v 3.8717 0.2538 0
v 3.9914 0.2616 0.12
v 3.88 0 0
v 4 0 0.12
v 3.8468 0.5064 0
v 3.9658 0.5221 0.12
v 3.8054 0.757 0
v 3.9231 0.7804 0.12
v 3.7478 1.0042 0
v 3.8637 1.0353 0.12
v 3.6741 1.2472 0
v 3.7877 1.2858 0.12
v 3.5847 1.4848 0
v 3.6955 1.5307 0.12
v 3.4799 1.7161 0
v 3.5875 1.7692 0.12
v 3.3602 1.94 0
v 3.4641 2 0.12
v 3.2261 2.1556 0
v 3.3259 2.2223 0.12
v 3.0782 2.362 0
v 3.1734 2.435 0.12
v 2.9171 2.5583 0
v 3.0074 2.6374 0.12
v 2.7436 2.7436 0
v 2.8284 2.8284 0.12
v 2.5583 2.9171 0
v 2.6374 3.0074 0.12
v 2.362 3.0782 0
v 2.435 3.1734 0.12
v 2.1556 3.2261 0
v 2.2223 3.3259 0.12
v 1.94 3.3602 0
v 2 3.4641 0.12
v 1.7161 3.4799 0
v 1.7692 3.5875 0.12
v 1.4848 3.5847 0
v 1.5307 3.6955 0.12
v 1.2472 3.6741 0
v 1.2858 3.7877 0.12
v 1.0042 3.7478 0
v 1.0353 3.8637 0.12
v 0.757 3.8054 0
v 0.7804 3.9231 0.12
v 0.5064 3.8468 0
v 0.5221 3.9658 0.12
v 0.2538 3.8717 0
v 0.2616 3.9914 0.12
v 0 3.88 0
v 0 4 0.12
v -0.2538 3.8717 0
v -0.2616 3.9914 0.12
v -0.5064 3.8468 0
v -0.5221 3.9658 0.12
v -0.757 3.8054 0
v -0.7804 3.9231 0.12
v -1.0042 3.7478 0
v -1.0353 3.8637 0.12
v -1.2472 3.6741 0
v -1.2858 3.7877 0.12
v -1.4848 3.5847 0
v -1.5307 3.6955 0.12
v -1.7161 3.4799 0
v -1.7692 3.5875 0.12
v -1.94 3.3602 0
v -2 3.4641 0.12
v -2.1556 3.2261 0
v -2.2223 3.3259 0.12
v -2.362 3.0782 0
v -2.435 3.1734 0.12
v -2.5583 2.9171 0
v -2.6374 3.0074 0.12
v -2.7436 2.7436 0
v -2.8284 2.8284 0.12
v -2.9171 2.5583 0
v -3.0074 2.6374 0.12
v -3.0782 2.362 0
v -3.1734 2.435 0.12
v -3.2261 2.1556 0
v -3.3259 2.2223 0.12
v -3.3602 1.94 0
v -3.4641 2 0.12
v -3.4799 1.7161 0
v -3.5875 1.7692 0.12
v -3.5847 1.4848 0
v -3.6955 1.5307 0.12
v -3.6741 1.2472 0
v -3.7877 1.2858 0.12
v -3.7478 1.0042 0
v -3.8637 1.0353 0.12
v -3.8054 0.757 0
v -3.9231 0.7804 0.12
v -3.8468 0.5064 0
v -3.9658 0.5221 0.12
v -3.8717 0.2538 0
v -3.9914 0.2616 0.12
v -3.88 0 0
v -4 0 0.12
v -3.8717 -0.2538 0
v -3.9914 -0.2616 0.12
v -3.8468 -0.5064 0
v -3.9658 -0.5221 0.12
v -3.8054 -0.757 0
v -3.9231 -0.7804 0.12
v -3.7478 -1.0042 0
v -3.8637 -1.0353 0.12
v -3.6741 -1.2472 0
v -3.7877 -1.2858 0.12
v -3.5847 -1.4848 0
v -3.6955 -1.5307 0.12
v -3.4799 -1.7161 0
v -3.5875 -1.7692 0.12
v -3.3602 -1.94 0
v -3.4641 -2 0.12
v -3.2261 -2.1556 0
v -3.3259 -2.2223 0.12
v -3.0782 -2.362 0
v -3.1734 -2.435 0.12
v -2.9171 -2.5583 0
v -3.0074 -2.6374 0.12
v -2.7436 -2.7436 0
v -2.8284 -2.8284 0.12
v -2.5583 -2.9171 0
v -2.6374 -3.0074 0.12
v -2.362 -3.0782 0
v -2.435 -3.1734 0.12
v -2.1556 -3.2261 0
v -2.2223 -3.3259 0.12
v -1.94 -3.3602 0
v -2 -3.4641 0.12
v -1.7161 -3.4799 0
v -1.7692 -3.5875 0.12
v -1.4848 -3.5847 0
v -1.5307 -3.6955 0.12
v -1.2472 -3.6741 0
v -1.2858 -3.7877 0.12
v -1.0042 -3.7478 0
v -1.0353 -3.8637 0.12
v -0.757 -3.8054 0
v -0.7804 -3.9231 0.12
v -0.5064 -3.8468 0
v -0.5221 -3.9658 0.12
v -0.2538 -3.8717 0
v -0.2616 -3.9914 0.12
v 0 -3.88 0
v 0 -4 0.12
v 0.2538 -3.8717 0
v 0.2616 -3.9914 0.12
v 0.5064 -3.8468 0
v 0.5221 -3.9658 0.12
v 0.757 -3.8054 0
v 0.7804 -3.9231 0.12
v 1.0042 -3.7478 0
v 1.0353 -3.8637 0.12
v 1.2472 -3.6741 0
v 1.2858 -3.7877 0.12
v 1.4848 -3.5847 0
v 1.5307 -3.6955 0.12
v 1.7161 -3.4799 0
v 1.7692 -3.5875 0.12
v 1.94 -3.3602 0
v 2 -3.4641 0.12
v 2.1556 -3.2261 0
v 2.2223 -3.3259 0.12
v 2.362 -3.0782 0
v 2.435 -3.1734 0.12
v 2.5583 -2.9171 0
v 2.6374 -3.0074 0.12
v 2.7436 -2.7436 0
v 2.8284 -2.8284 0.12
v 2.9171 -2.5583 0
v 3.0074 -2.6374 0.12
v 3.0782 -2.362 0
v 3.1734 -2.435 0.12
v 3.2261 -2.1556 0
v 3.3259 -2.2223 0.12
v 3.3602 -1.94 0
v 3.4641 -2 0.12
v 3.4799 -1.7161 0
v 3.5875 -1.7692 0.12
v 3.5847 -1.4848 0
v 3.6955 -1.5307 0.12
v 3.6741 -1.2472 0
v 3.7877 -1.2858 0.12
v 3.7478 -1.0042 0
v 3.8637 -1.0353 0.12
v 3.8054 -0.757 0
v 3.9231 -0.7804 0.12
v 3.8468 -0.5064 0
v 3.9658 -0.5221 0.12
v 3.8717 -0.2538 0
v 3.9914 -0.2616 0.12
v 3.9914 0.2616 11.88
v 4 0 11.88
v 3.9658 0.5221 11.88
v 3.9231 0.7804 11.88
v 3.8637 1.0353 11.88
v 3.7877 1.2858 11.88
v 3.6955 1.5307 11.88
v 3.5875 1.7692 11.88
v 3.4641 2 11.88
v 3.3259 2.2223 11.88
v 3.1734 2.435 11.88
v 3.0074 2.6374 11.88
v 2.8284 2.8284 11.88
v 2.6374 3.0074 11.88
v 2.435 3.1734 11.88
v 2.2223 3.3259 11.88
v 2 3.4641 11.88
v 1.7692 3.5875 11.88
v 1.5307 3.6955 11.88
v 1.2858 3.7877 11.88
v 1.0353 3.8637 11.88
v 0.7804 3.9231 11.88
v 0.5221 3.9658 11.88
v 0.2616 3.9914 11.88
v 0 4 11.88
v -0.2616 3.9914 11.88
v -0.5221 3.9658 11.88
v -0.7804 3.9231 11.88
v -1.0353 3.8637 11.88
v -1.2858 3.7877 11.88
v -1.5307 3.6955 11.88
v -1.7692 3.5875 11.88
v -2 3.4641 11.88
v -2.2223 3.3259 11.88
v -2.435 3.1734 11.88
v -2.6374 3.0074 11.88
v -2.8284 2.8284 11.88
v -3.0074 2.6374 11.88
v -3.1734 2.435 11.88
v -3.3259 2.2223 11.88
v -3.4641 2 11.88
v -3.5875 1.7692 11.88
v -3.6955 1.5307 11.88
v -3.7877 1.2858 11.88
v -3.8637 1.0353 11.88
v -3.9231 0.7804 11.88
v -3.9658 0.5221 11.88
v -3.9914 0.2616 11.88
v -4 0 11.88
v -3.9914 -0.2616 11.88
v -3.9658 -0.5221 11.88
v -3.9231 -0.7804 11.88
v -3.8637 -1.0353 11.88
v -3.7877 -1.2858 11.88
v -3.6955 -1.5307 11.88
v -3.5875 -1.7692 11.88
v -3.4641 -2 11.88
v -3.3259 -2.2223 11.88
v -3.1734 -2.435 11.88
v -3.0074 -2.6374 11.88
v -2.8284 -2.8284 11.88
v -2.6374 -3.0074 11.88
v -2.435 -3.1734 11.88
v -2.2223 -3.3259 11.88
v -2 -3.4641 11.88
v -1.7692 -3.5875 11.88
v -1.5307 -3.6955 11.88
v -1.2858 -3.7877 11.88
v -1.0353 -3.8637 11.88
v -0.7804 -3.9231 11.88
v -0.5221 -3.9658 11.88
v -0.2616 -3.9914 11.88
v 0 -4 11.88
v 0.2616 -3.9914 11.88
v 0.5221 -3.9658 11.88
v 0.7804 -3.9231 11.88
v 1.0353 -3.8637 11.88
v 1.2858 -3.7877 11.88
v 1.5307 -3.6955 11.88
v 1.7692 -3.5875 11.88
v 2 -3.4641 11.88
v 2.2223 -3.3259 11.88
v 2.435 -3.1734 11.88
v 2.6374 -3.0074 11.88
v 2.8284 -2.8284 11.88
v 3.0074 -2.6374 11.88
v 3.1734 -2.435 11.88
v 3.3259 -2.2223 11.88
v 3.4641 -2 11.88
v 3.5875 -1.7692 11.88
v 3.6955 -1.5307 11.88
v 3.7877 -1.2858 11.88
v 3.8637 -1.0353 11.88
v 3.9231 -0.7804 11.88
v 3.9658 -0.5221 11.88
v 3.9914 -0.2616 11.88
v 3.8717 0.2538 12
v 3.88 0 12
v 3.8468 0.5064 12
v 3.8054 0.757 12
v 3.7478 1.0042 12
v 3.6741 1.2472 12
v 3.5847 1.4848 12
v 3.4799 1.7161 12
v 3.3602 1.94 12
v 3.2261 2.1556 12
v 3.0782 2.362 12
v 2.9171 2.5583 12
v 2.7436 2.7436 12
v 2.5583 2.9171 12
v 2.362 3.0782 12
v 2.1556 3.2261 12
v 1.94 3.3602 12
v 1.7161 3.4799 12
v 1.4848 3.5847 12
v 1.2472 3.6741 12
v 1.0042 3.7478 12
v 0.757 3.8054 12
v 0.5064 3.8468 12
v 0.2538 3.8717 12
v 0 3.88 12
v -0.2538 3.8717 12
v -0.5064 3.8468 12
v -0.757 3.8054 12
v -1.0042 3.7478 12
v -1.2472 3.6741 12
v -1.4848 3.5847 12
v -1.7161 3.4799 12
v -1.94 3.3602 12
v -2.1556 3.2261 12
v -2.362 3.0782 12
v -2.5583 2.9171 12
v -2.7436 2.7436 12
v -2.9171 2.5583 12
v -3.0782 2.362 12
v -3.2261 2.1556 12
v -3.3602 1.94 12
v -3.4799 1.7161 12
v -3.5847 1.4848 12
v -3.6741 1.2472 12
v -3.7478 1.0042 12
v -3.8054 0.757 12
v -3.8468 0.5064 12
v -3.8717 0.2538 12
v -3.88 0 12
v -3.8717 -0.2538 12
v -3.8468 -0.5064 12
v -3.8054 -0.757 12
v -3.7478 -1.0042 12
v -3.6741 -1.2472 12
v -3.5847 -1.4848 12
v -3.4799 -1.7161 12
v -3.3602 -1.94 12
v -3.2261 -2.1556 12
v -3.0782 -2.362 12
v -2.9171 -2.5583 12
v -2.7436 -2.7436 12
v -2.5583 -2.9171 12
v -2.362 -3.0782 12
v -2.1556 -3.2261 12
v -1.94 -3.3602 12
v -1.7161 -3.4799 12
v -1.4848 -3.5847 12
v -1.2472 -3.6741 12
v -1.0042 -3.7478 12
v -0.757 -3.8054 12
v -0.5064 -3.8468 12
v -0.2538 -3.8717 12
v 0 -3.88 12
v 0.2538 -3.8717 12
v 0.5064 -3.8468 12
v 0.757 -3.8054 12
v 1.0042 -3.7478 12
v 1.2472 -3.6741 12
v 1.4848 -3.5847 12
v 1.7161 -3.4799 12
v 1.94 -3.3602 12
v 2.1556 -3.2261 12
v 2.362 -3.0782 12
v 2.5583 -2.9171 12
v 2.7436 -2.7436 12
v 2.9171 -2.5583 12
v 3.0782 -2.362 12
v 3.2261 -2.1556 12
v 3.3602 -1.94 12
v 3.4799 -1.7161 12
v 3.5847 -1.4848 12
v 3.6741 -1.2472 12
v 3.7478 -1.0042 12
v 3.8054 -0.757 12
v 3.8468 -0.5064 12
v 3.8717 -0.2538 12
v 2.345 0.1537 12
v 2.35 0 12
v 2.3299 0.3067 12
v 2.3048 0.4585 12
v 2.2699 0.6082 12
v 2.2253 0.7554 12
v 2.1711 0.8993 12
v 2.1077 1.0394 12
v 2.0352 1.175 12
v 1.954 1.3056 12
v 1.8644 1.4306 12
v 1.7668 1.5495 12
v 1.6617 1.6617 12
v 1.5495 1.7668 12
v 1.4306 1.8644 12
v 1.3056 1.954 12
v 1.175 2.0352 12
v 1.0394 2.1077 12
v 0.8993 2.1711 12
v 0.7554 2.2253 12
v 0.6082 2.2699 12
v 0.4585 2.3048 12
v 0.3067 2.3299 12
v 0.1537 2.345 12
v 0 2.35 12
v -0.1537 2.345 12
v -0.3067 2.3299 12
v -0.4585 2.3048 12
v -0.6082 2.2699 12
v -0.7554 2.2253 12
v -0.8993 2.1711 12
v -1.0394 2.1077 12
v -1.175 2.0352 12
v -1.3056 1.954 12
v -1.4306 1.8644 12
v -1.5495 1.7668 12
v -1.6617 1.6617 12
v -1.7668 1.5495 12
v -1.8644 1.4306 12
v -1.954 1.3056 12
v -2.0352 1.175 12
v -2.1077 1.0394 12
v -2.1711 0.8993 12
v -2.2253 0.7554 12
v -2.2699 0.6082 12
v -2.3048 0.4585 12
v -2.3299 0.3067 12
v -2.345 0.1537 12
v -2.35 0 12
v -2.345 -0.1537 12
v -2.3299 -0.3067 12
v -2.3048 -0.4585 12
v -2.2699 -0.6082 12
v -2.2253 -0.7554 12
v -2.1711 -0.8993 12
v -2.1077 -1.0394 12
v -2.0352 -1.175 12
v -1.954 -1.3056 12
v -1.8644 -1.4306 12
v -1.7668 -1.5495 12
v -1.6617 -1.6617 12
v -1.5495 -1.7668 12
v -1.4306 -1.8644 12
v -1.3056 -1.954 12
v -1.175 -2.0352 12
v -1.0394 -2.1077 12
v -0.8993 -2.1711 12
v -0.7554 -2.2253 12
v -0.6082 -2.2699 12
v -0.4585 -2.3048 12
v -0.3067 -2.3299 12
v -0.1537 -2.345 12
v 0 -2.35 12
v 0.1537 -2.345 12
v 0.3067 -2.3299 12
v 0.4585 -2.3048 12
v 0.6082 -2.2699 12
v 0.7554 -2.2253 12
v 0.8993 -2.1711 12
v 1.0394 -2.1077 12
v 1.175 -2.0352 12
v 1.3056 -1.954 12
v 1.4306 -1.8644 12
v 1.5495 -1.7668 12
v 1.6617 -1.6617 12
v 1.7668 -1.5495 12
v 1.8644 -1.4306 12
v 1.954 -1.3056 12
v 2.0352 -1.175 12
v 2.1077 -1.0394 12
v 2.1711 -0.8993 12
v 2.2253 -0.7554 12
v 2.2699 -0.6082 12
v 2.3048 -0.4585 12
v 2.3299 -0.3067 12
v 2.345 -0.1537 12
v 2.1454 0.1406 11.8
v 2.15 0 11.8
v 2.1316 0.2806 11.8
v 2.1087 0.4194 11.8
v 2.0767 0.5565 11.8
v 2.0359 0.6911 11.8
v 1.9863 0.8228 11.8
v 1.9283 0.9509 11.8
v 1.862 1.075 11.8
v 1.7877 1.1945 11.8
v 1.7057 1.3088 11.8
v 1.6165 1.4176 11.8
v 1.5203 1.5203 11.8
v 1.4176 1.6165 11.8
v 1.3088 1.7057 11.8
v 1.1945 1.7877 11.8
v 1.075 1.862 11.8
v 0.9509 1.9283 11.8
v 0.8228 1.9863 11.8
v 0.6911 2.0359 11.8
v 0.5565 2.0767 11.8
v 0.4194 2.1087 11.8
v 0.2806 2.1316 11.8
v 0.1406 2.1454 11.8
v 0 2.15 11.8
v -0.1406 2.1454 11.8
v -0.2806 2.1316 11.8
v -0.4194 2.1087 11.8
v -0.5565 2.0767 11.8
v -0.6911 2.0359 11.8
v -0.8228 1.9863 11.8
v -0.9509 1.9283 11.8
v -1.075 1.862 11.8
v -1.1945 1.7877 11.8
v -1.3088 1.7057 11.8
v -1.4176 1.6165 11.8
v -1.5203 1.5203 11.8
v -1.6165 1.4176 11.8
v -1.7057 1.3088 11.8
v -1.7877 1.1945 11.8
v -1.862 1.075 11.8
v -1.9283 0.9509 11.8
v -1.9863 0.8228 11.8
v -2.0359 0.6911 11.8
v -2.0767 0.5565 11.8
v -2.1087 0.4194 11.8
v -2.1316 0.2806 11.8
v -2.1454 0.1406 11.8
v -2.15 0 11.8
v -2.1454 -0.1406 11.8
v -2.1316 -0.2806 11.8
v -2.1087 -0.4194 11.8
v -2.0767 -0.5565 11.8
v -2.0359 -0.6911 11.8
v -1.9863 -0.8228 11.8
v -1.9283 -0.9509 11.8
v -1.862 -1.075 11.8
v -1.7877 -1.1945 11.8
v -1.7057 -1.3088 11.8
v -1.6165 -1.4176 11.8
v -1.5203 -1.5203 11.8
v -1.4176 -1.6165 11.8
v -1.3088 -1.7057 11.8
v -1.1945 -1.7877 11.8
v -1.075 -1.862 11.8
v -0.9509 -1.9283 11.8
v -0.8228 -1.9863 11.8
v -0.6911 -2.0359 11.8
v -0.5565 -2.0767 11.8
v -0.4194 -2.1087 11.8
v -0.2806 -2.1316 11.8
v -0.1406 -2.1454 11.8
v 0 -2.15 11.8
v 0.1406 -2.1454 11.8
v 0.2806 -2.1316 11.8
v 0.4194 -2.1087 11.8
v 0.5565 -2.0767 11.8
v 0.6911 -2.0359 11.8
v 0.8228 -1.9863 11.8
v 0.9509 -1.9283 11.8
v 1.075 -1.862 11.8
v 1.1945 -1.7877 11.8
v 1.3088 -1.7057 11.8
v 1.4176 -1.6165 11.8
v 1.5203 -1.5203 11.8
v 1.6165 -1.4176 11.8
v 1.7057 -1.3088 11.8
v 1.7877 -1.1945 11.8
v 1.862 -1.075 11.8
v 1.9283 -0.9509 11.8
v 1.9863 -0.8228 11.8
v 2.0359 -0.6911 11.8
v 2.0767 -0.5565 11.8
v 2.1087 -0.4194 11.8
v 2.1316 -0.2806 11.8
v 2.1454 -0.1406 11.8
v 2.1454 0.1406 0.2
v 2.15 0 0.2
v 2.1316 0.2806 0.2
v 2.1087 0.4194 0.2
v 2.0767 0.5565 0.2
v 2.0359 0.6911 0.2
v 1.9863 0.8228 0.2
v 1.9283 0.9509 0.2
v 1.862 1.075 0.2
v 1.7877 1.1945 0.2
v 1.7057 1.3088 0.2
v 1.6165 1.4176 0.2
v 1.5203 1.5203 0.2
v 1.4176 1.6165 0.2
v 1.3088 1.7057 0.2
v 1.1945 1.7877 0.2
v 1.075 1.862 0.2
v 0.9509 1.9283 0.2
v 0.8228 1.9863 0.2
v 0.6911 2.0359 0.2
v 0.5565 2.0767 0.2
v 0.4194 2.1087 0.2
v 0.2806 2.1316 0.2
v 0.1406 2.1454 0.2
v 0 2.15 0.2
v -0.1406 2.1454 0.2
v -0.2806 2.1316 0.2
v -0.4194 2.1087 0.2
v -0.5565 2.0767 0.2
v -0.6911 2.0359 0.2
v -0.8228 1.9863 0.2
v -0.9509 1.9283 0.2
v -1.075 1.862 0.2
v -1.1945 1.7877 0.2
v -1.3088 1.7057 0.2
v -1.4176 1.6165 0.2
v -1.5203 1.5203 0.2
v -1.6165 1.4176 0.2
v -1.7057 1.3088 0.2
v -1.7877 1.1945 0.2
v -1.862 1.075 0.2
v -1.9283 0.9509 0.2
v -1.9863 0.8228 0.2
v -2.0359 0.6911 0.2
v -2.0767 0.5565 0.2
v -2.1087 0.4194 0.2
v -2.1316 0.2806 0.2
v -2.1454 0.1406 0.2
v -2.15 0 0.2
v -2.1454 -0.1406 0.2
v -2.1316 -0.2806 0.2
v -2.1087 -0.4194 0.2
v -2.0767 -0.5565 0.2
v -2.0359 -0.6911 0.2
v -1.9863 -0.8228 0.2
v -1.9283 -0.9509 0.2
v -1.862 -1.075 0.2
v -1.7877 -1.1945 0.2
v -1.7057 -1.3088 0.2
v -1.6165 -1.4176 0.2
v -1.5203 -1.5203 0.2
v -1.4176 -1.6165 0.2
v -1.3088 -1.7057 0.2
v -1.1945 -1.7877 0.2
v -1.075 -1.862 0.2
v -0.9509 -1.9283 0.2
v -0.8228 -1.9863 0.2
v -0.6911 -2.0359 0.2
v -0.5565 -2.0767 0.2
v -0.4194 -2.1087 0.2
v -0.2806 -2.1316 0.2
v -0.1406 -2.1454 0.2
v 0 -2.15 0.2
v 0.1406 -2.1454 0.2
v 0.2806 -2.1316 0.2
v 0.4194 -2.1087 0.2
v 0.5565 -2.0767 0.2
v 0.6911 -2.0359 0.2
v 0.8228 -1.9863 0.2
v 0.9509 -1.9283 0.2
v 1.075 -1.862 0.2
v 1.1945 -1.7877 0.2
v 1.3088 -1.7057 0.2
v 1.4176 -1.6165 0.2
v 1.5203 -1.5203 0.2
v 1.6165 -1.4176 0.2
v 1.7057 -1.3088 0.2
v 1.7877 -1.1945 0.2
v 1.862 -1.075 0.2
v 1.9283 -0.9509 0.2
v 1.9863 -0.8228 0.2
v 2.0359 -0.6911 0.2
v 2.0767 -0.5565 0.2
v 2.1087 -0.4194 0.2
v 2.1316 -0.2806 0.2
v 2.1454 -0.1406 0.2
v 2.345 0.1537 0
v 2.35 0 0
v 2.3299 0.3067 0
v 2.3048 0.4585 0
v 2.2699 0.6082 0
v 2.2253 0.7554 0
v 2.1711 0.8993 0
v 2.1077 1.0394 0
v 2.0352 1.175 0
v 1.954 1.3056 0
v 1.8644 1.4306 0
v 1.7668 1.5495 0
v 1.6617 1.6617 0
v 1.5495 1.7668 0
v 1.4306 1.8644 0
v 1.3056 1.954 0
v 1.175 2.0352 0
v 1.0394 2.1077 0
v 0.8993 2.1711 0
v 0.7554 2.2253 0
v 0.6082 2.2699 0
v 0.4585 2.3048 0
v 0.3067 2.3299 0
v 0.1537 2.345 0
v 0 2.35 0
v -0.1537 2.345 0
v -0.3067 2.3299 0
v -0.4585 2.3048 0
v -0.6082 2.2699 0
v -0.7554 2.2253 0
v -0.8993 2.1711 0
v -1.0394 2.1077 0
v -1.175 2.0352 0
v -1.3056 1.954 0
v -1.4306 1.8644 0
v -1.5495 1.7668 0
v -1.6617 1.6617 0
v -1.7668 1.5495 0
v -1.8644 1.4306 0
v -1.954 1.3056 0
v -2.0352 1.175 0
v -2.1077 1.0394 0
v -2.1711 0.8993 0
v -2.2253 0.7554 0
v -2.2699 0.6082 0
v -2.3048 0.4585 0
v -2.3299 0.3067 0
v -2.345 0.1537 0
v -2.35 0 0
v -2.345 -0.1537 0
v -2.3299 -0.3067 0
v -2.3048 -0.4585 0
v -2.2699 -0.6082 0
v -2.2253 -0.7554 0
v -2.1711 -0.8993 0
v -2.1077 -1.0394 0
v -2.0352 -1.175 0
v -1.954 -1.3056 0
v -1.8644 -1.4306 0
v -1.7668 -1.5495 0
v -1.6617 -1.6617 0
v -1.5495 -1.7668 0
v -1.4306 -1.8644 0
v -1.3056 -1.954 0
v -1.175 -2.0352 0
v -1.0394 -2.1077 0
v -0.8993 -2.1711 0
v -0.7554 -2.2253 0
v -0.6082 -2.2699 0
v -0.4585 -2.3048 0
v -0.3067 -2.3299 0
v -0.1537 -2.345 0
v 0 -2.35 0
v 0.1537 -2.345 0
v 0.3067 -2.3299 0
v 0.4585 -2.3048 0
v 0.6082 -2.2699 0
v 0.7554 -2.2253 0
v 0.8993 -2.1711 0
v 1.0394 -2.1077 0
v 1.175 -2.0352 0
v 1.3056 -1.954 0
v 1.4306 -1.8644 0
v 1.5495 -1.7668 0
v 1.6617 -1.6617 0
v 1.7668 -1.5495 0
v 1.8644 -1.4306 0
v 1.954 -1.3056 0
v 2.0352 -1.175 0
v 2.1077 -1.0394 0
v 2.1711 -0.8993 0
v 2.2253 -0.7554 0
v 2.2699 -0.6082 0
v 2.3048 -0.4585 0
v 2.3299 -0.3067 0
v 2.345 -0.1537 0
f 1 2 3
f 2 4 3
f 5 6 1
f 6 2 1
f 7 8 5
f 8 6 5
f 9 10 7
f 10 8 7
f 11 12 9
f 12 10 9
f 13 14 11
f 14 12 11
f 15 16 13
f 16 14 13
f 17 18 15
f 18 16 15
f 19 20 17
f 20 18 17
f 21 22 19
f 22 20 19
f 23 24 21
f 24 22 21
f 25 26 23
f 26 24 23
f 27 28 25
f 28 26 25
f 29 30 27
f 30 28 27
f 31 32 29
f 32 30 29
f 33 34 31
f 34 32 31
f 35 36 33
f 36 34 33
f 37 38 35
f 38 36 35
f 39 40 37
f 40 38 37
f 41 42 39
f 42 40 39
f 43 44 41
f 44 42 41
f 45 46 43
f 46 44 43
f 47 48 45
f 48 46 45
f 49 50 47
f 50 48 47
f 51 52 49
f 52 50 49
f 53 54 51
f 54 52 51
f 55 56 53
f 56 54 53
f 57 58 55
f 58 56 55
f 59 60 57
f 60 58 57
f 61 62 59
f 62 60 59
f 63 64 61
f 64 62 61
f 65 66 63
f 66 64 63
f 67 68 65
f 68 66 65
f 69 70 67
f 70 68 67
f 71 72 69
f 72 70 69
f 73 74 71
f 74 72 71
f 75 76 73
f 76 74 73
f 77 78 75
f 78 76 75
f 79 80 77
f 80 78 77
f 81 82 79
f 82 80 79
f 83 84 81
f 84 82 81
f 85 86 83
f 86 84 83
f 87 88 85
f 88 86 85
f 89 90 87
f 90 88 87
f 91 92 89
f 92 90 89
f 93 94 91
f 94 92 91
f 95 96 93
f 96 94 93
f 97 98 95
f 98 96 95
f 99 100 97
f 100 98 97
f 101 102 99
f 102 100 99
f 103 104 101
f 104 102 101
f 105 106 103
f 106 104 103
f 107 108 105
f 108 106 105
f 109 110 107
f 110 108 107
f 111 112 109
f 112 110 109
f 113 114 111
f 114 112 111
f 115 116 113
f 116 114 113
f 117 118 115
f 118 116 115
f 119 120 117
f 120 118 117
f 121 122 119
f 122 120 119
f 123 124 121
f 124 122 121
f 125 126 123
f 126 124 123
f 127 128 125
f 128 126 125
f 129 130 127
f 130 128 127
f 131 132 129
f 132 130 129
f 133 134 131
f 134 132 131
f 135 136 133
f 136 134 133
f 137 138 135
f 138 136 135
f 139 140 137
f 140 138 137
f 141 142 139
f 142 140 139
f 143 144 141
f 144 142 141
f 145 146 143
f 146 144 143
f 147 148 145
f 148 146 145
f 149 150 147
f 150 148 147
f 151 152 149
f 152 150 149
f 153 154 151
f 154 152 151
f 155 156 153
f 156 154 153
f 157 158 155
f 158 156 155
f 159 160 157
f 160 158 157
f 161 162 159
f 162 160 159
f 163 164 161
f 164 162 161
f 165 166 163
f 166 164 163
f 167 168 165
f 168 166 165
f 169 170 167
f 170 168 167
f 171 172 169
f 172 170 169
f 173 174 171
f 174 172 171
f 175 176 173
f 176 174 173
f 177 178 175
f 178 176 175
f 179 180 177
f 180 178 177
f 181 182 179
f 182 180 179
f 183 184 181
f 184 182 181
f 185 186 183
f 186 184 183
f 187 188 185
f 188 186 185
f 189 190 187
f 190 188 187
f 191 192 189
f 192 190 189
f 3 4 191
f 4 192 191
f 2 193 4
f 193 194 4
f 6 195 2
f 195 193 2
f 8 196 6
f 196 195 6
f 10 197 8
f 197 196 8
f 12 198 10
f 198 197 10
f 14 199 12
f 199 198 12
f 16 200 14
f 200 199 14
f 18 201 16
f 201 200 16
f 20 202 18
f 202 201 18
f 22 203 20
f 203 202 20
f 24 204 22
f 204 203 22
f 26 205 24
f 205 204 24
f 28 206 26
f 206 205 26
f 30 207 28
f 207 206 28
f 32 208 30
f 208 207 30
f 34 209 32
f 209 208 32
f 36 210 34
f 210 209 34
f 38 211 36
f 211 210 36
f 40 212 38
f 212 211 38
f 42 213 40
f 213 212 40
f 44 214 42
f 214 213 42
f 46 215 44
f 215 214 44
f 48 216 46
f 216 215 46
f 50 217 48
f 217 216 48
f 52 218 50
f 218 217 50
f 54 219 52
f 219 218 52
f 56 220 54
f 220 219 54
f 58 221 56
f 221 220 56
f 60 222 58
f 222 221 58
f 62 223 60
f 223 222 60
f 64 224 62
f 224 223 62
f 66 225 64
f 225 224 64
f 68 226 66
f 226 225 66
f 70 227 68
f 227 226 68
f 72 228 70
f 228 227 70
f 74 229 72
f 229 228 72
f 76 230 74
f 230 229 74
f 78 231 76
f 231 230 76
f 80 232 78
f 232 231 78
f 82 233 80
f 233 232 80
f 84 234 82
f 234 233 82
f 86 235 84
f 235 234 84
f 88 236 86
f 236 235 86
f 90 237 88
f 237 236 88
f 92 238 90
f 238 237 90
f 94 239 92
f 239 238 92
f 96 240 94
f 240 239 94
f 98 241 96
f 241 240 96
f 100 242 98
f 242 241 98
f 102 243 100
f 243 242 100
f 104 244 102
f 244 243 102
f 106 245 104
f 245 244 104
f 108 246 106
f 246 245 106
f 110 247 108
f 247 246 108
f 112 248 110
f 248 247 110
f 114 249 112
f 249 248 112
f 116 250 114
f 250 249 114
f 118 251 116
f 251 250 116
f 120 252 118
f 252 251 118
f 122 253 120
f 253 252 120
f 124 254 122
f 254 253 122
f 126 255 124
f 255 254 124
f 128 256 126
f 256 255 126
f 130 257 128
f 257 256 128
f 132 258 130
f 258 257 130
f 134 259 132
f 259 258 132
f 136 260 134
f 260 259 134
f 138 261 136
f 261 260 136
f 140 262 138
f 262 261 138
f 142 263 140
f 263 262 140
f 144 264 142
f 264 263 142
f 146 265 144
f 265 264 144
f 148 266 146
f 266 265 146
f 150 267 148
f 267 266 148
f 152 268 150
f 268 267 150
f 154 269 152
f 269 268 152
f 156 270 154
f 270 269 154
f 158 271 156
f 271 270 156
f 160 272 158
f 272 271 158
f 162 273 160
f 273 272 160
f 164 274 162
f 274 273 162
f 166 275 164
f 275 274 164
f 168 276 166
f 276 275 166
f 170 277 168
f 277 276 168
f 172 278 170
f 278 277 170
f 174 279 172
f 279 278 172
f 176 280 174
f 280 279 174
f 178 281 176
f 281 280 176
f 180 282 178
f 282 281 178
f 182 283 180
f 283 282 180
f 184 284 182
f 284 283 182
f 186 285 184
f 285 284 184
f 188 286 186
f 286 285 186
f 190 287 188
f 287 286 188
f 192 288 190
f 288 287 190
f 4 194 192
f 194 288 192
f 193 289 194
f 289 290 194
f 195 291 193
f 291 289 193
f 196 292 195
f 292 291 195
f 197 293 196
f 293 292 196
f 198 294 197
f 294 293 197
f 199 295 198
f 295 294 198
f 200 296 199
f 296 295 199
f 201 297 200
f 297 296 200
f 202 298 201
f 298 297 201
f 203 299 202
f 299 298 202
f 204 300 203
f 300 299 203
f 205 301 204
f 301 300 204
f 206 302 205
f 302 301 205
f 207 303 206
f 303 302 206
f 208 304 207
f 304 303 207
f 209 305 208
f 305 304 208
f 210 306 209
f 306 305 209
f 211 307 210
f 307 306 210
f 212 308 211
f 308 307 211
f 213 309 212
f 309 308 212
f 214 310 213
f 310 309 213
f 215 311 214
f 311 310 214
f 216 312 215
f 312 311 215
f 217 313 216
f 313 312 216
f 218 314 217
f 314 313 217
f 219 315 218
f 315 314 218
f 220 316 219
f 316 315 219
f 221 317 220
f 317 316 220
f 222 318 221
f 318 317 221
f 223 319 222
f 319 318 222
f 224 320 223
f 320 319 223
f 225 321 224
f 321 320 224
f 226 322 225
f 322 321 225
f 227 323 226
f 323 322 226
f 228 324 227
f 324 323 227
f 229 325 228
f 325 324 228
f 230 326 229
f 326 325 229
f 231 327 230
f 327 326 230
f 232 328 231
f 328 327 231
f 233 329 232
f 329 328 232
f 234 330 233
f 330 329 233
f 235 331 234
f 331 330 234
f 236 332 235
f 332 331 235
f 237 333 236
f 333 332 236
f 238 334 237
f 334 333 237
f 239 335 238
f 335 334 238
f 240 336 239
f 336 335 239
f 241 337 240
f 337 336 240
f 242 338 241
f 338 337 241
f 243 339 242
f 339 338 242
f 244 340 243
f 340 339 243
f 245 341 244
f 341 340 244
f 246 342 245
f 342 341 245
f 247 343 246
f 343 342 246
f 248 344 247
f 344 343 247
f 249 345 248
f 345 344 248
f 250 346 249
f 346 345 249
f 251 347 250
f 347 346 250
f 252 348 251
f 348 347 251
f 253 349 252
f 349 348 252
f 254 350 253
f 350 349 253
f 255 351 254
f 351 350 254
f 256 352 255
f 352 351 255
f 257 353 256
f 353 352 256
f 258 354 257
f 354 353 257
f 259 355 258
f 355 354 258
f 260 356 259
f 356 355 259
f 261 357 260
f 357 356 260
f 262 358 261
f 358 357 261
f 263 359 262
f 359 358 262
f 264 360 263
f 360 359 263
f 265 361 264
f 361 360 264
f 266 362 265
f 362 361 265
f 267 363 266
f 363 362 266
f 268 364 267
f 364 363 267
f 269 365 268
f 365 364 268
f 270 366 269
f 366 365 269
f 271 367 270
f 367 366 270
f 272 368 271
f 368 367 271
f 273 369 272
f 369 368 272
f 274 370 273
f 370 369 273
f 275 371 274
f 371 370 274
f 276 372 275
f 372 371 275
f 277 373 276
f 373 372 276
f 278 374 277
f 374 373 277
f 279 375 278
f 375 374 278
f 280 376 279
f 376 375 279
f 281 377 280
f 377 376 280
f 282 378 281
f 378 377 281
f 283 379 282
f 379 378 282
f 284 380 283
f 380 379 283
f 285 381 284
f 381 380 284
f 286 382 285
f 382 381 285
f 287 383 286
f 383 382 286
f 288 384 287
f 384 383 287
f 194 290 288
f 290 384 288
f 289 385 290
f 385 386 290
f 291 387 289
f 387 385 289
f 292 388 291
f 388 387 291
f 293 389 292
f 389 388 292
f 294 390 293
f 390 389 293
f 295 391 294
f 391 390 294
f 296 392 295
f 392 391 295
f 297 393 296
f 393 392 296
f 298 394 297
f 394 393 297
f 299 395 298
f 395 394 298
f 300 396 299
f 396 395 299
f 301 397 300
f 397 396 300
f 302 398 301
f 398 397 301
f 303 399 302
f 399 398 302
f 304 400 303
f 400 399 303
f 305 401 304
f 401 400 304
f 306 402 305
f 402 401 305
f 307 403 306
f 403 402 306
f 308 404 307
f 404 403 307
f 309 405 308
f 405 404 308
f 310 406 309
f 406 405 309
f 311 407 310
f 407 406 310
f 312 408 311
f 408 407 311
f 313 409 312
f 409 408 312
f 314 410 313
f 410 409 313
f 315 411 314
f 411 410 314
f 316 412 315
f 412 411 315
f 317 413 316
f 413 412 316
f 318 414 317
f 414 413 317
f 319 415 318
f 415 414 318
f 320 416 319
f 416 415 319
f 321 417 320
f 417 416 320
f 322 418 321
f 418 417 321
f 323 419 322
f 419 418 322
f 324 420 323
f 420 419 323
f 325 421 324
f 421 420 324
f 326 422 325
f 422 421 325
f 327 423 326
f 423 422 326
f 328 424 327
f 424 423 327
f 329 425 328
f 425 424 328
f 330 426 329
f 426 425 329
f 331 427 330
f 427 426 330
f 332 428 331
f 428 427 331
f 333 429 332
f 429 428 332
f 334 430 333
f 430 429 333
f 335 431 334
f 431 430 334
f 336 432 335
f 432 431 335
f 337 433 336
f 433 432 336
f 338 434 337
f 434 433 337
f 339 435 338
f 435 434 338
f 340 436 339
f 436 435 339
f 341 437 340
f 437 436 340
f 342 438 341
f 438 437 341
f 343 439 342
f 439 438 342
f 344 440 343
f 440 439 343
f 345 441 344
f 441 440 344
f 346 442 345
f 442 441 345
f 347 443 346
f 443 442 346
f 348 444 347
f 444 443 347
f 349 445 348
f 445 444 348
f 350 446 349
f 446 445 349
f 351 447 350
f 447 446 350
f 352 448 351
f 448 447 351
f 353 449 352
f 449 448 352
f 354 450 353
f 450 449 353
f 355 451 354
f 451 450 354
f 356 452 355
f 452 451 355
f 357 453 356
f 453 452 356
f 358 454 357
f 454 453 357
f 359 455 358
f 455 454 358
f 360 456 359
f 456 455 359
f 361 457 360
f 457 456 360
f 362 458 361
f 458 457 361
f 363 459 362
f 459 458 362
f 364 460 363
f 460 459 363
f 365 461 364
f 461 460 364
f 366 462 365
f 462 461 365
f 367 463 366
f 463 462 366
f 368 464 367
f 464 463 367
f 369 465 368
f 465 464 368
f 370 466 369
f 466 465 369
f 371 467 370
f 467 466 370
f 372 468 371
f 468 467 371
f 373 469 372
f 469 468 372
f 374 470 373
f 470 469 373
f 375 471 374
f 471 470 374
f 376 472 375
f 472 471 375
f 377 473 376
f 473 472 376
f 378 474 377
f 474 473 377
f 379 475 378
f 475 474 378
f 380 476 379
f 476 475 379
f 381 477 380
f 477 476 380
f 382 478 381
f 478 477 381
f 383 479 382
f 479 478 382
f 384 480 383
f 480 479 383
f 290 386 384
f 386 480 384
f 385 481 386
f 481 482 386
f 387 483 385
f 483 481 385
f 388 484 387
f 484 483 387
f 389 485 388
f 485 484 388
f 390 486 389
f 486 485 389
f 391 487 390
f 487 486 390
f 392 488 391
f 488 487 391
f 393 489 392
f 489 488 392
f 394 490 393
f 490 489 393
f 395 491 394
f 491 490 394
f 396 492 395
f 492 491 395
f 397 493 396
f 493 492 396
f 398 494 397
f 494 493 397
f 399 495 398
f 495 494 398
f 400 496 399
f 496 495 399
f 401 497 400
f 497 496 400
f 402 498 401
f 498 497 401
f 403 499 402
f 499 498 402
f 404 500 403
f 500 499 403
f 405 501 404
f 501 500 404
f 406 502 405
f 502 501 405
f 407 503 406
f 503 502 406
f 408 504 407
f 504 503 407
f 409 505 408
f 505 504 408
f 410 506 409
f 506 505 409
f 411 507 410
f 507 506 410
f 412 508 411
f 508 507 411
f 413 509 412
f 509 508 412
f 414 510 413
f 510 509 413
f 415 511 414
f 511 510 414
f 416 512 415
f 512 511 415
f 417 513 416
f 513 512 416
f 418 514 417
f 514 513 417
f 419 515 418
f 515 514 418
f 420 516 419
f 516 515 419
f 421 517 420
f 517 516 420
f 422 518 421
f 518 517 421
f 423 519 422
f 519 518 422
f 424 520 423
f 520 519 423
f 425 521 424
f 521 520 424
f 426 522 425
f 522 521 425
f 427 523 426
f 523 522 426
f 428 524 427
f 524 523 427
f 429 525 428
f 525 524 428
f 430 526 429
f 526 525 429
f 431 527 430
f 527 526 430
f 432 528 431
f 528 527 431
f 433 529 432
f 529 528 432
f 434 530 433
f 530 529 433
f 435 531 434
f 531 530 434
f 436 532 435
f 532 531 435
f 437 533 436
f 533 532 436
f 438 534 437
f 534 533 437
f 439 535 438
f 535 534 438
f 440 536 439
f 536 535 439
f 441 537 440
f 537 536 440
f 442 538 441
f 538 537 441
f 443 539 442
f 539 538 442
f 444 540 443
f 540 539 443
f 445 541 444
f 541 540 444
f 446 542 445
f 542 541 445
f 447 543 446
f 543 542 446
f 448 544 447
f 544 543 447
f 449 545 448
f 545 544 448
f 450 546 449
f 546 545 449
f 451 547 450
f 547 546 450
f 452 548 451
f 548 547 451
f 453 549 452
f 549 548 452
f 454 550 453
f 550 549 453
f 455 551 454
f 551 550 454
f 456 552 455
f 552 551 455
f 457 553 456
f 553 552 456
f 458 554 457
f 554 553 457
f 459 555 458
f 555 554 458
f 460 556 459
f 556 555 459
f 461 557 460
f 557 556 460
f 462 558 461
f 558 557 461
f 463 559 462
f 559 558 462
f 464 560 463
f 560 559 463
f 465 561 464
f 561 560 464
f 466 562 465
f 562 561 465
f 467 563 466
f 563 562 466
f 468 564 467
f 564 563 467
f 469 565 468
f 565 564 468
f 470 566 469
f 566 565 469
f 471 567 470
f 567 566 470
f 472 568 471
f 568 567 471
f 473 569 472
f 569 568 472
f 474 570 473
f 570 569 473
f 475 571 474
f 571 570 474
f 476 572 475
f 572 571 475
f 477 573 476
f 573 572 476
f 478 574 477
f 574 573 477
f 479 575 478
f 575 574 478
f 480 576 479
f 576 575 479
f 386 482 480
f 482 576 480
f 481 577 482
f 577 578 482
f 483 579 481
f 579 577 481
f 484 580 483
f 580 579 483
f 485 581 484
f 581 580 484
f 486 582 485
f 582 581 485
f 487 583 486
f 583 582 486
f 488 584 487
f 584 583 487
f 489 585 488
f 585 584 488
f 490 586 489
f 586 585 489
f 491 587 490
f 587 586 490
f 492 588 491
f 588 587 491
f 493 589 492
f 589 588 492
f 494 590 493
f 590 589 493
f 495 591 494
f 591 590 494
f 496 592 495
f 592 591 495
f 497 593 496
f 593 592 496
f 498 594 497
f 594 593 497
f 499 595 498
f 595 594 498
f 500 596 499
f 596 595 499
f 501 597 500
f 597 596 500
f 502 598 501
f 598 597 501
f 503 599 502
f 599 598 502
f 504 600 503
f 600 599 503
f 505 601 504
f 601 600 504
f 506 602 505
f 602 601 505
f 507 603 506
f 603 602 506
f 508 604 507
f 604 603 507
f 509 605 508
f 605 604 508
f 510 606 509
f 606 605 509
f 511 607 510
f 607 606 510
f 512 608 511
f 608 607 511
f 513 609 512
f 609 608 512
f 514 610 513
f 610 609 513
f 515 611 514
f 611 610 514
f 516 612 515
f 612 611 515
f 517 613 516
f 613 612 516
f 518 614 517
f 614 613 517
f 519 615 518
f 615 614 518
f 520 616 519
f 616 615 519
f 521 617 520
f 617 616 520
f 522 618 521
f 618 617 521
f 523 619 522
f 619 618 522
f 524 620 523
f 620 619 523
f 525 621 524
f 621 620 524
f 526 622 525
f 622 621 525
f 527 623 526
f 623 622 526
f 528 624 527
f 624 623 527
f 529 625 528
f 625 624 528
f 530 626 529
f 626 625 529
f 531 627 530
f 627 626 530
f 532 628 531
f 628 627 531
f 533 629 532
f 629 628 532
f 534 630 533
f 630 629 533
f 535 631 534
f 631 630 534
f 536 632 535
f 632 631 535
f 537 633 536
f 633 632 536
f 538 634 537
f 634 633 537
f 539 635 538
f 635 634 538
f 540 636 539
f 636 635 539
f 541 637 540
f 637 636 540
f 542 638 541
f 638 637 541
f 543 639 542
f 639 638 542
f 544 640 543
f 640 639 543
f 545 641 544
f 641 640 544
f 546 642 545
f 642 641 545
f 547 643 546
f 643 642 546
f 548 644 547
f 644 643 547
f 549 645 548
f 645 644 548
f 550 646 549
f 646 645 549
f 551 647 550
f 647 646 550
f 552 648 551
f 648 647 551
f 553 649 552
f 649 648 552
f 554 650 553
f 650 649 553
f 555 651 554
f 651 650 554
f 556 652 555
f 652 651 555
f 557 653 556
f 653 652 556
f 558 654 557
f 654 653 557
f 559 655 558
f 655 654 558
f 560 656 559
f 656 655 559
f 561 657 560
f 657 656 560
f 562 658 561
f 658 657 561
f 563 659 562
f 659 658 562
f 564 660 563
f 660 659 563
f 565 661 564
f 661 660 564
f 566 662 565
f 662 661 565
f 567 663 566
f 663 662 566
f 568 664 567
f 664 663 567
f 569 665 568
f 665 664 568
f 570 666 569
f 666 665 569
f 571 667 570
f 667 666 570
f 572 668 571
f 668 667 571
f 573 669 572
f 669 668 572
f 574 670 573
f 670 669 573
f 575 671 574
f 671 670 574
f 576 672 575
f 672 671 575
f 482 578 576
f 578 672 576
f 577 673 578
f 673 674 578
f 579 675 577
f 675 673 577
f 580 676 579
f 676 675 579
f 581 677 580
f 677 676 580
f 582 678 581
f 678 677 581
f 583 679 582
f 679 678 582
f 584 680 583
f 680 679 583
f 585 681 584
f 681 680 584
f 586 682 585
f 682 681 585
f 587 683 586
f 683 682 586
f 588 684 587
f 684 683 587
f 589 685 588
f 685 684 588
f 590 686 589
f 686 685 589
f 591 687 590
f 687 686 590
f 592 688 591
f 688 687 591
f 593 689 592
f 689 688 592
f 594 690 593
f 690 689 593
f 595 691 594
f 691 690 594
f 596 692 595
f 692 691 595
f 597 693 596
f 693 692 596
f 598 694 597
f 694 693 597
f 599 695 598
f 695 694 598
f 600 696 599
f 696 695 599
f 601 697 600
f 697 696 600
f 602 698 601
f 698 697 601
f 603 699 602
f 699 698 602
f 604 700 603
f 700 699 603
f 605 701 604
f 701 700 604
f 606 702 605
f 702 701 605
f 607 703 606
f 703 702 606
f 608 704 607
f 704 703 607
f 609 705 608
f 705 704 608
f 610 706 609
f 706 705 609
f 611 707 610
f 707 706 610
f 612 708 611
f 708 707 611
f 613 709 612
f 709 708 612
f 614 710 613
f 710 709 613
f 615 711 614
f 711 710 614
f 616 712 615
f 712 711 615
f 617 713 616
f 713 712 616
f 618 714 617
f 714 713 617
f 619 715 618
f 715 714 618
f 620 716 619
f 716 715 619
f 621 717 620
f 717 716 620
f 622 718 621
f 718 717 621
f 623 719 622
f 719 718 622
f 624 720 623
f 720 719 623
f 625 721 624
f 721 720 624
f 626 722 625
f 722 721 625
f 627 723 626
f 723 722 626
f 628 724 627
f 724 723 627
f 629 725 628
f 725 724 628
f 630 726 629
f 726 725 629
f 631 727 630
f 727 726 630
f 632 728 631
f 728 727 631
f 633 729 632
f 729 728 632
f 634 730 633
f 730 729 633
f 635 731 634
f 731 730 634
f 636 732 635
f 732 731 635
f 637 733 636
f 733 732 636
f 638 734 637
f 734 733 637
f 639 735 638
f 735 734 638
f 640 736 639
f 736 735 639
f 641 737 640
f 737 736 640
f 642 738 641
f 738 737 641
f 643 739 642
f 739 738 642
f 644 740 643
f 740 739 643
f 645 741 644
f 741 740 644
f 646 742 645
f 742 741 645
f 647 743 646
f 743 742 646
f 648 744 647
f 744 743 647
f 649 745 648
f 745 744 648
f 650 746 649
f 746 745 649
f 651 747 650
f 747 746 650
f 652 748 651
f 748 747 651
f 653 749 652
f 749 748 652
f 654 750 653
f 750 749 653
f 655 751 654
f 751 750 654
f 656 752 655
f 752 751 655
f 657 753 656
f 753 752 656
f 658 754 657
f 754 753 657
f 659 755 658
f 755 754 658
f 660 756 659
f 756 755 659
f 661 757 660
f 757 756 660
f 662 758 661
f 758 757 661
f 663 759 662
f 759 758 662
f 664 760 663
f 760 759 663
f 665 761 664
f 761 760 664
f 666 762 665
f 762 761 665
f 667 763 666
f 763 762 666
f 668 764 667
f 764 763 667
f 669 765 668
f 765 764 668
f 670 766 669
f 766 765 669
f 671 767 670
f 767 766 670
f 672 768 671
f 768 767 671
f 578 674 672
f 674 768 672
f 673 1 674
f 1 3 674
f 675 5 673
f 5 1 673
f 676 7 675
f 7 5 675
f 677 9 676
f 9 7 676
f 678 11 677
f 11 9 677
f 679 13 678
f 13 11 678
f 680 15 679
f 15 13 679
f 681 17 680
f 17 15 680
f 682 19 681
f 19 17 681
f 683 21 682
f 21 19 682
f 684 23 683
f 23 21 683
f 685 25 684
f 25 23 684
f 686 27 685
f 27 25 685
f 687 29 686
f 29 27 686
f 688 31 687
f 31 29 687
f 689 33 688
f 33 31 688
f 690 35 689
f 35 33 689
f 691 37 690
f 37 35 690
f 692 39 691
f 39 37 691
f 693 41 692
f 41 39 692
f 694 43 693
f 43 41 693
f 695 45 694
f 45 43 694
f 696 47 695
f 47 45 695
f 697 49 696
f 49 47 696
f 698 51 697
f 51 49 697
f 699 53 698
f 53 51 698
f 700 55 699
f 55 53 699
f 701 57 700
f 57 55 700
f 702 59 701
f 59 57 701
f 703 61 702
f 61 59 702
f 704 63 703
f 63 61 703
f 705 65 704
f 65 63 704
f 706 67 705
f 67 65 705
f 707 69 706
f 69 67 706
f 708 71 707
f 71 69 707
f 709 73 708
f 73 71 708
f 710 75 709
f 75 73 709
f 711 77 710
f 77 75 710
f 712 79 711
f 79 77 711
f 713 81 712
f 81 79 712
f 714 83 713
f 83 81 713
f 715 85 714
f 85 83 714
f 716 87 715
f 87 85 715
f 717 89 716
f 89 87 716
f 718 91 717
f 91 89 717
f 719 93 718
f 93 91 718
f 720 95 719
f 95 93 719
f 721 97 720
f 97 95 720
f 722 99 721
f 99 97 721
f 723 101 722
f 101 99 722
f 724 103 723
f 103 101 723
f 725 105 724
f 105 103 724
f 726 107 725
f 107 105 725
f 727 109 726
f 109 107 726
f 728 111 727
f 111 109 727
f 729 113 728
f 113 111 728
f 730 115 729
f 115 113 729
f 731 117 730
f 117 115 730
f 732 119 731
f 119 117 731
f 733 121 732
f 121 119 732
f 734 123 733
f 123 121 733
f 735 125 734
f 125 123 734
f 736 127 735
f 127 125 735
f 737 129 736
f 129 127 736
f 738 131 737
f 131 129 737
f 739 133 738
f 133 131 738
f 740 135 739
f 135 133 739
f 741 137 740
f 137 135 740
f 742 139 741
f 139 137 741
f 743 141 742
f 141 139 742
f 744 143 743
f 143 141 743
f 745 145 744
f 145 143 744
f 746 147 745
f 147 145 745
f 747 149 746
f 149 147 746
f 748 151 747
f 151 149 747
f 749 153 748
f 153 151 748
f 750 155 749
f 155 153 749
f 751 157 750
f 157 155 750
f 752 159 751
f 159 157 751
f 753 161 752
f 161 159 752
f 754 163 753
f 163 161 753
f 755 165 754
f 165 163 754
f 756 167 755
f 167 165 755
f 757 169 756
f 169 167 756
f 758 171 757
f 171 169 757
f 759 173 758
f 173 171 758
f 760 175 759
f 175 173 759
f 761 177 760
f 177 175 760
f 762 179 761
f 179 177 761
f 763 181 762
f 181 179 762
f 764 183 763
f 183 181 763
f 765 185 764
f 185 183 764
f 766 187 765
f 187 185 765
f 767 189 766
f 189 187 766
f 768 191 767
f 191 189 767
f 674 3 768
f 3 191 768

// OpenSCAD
// OOMP generic catalogue model; units: mm.
// Stud length is additional to body depth. Tapping depths are model assumptions.
variant = "full"; // [full, display]
family = "spacer";
connection_type = "plain";
depth_mm = 12;
stud_length_mm = 0;
tapped_depth_mm = 0;
bore_mm = 4.3;
outer_diameter_mm = 8;
across_flats_mm = 6;
thread_nominal_diameter_mm = 3;
thread_pitch_mm = 0.5;
edge_chamfer_mm = 0.12;
mouth_chamfer_mm = 0.2;
angular_segments = 96;
samples_per_pitch = 16;

// Boundary travels up the outside, then down any tapped/plain bore.
// Equal-height rings at shoulders form the annular shoulder faces.
n = angular_segments;
threaded = family == "standoff";
has_stud = connection_type == "stud_to_tapped" || connection_type == "stud_to_stud";
two_studs = connection_type == "stud_to_stud";
through = !threaded || connection_type == "tapped_to_tapped";
pitch = thread_pitch_mm;
diameter = threaded ? thread_nominal_diameter_mm : bore_mm;
minor = diameter - 5*sqrt(3)*pitch/8;
transition = mouth_chamfer_mm + (threaded ? 5*sqrt(3)*pitch/16 : 0);
tip_chamfer = mouth_chamfer_mm + 17*sqrt(3)*pitch/48;
function sorted(v) = len(v)<=1 ? v : let(p=v[0])
    concat(sorted([for(x=v) if(x<p-1e-8) x]), [p], sorted([for(x=v) if(x>p+1e-8) x]));
function reverse(v) = [for(i=[len(v)-1:-1:0]) v[i]];
function theta(i) = i*360/n;
function fract(x) = x-floor(x);
function phase_distance(i,z) = abs(fract(z/pitch-theta(i)/360+0.5)-0.5);
function thread_r(i,z) = minor/2 + min(5*sqrt(3)*pitch/16,
    max(0,(phase_distance(i,z)-0.125)*pitch*sqrt(3)));
function stud_r(i,z,tip) = min(diameter/2 - (variant=="full" ?
    min(17*sqrt(3)*pitch/48,max(0,(phase_distance(i,z)-0.0625)*pitch*sqrt(3))) : 0),
    diameter/2-tip_chamfer+abs(z-tip));
function body_r(i,z) = (threaded ? across_flats_mm/2/cos(theta(i)%60-30) : outer_diameter_mm/2)
    - max(0,edge_chamfer_mm-min(z,depth_mm-z));
function bore_r(i,z) = max(threaded ? (variant=="full" ? thread_r(i,z) : minor/2) : diameter/2,
    diameter/2+mouth_chamfer_mm-(through ? min(z,depth_mm-z) : depth_mm-z));
function stud_z(a,b,tip) = let(count=variant=="full" ? ceil(stud_length_mm/pitch*samples_per_pitch) : 1)
    sorted(concat([for(i=[0:count]) a+(b-a)*i/count], [tip==a ? tip+tip_chamfer : tip-tip_chamfer]));
body_z = sorted([0,edge_chamfer_mm,depth_mm-edge_chamfer_mm,depth_mm]);
low = through ? 0 : depth_mm-tapped_depth_mm;
count = threaded && variant=="full" ? ceil((depth_mm-low)/pitch*samples_per_pitch) : 1;
bore_z = two_studs ? [] : reverse(sorted(concat(
    [for(i=[0:count]) low+(depth_mm-low)*i/count],
    [depth_mm-mouth_chamfer_mm,depth_mm-transition],
    through ? [mouth_chamfer_mm,transition] : [])));
// Ring descriptors: [height, kind, tip]. Kind: 0 body, 1 stud, 2 bore.
rings = concat(
    has_stud ? [for(z=stud_z(-stud_length_mm,0,-stud_length_mm)) [z,1,-stud_length_mm]] : [],
    [for(z=body_z) [z,0,0]],
    two_studs ? [for(z=stud_z(depth_mm,depth_mm+stud_length_mm,depth_mm+stud_length_mm)) [z,1,depth_mm+stud_length_mm]] : [],
    [for(z=bore_z) [z,2,0]]);
function radius(i,ring) = ring[1]==0 ? body_r(i,ring[0]) :
    ring[1]==1 ? stud_r(i,ring[0],ring[2]) : bore_r(i,ring[0]);
points = concat([for(ring=rings) for(i=[0:n-1])
    [radius(i,ring)*cos(theta(i)),radius(i,ring)*sin(theta(i)),ring[0]]],
    through ? [] : [[0,0,rings[0][0]],[0,0,rings[len(rings)-1][0]]]);
center = len(rings)*n;
last = (len(rings)-1)*n;
// OpenSCAD winding is opposite to STL winding.
faces = concat(
    [for(j=[0:len(rings)-(through ? 1 : 2)]) for(i=[0:n-1]) each
        let(a=j*n+i,b=j*n+(i+1)%n,c=((j+1)%len(rings))*n+(i+1)%n,d=((j+1)%len(rings))*n+i)
        [[a,c,b],[a,d,c]]],
    through ? [] : [for(i=[0:n-1]) each let(k=(i+1)%n)
        [[center,i,k],[center+1,last+k,last+i]]]);
assert(family=="spacer" || family=="standoff");
assert(!threaded || connection_type=="tapped_to_tapped" || has_stud);
assert(depth_mm>0 && diameter>0 && pitch>0);
assert(variant=="full" || variant=="display");
assert(n>=24 && n%12==0 && samples_per_pitch>=8);
assert(mouth_chamfer_mm>0 && mouth_chamfer_mm<depth_mm/2);
assert(edge_chamfer_mm>=0 && edge_chamfer_mm<depth_mm/2);
assert(diameter+4*max(mouth_chamfer_mm,edge_chamfer_mm) < (threaded ? across_flats_mm : outer_diameter_mm));
assert(!has_stud || stud_length_mm>2*mouth_chamfer_mm);
assert(!through || !threaded || 2*transition<depth_mm);
assert(connection_type!="stud_to_tapped" || (tapped_depth_mm>transition && tapped_depth_mm<depth_mm));
color([0.86,0.85,0.81]) polyhedron(points=points,faces=faces,convexity=20);
